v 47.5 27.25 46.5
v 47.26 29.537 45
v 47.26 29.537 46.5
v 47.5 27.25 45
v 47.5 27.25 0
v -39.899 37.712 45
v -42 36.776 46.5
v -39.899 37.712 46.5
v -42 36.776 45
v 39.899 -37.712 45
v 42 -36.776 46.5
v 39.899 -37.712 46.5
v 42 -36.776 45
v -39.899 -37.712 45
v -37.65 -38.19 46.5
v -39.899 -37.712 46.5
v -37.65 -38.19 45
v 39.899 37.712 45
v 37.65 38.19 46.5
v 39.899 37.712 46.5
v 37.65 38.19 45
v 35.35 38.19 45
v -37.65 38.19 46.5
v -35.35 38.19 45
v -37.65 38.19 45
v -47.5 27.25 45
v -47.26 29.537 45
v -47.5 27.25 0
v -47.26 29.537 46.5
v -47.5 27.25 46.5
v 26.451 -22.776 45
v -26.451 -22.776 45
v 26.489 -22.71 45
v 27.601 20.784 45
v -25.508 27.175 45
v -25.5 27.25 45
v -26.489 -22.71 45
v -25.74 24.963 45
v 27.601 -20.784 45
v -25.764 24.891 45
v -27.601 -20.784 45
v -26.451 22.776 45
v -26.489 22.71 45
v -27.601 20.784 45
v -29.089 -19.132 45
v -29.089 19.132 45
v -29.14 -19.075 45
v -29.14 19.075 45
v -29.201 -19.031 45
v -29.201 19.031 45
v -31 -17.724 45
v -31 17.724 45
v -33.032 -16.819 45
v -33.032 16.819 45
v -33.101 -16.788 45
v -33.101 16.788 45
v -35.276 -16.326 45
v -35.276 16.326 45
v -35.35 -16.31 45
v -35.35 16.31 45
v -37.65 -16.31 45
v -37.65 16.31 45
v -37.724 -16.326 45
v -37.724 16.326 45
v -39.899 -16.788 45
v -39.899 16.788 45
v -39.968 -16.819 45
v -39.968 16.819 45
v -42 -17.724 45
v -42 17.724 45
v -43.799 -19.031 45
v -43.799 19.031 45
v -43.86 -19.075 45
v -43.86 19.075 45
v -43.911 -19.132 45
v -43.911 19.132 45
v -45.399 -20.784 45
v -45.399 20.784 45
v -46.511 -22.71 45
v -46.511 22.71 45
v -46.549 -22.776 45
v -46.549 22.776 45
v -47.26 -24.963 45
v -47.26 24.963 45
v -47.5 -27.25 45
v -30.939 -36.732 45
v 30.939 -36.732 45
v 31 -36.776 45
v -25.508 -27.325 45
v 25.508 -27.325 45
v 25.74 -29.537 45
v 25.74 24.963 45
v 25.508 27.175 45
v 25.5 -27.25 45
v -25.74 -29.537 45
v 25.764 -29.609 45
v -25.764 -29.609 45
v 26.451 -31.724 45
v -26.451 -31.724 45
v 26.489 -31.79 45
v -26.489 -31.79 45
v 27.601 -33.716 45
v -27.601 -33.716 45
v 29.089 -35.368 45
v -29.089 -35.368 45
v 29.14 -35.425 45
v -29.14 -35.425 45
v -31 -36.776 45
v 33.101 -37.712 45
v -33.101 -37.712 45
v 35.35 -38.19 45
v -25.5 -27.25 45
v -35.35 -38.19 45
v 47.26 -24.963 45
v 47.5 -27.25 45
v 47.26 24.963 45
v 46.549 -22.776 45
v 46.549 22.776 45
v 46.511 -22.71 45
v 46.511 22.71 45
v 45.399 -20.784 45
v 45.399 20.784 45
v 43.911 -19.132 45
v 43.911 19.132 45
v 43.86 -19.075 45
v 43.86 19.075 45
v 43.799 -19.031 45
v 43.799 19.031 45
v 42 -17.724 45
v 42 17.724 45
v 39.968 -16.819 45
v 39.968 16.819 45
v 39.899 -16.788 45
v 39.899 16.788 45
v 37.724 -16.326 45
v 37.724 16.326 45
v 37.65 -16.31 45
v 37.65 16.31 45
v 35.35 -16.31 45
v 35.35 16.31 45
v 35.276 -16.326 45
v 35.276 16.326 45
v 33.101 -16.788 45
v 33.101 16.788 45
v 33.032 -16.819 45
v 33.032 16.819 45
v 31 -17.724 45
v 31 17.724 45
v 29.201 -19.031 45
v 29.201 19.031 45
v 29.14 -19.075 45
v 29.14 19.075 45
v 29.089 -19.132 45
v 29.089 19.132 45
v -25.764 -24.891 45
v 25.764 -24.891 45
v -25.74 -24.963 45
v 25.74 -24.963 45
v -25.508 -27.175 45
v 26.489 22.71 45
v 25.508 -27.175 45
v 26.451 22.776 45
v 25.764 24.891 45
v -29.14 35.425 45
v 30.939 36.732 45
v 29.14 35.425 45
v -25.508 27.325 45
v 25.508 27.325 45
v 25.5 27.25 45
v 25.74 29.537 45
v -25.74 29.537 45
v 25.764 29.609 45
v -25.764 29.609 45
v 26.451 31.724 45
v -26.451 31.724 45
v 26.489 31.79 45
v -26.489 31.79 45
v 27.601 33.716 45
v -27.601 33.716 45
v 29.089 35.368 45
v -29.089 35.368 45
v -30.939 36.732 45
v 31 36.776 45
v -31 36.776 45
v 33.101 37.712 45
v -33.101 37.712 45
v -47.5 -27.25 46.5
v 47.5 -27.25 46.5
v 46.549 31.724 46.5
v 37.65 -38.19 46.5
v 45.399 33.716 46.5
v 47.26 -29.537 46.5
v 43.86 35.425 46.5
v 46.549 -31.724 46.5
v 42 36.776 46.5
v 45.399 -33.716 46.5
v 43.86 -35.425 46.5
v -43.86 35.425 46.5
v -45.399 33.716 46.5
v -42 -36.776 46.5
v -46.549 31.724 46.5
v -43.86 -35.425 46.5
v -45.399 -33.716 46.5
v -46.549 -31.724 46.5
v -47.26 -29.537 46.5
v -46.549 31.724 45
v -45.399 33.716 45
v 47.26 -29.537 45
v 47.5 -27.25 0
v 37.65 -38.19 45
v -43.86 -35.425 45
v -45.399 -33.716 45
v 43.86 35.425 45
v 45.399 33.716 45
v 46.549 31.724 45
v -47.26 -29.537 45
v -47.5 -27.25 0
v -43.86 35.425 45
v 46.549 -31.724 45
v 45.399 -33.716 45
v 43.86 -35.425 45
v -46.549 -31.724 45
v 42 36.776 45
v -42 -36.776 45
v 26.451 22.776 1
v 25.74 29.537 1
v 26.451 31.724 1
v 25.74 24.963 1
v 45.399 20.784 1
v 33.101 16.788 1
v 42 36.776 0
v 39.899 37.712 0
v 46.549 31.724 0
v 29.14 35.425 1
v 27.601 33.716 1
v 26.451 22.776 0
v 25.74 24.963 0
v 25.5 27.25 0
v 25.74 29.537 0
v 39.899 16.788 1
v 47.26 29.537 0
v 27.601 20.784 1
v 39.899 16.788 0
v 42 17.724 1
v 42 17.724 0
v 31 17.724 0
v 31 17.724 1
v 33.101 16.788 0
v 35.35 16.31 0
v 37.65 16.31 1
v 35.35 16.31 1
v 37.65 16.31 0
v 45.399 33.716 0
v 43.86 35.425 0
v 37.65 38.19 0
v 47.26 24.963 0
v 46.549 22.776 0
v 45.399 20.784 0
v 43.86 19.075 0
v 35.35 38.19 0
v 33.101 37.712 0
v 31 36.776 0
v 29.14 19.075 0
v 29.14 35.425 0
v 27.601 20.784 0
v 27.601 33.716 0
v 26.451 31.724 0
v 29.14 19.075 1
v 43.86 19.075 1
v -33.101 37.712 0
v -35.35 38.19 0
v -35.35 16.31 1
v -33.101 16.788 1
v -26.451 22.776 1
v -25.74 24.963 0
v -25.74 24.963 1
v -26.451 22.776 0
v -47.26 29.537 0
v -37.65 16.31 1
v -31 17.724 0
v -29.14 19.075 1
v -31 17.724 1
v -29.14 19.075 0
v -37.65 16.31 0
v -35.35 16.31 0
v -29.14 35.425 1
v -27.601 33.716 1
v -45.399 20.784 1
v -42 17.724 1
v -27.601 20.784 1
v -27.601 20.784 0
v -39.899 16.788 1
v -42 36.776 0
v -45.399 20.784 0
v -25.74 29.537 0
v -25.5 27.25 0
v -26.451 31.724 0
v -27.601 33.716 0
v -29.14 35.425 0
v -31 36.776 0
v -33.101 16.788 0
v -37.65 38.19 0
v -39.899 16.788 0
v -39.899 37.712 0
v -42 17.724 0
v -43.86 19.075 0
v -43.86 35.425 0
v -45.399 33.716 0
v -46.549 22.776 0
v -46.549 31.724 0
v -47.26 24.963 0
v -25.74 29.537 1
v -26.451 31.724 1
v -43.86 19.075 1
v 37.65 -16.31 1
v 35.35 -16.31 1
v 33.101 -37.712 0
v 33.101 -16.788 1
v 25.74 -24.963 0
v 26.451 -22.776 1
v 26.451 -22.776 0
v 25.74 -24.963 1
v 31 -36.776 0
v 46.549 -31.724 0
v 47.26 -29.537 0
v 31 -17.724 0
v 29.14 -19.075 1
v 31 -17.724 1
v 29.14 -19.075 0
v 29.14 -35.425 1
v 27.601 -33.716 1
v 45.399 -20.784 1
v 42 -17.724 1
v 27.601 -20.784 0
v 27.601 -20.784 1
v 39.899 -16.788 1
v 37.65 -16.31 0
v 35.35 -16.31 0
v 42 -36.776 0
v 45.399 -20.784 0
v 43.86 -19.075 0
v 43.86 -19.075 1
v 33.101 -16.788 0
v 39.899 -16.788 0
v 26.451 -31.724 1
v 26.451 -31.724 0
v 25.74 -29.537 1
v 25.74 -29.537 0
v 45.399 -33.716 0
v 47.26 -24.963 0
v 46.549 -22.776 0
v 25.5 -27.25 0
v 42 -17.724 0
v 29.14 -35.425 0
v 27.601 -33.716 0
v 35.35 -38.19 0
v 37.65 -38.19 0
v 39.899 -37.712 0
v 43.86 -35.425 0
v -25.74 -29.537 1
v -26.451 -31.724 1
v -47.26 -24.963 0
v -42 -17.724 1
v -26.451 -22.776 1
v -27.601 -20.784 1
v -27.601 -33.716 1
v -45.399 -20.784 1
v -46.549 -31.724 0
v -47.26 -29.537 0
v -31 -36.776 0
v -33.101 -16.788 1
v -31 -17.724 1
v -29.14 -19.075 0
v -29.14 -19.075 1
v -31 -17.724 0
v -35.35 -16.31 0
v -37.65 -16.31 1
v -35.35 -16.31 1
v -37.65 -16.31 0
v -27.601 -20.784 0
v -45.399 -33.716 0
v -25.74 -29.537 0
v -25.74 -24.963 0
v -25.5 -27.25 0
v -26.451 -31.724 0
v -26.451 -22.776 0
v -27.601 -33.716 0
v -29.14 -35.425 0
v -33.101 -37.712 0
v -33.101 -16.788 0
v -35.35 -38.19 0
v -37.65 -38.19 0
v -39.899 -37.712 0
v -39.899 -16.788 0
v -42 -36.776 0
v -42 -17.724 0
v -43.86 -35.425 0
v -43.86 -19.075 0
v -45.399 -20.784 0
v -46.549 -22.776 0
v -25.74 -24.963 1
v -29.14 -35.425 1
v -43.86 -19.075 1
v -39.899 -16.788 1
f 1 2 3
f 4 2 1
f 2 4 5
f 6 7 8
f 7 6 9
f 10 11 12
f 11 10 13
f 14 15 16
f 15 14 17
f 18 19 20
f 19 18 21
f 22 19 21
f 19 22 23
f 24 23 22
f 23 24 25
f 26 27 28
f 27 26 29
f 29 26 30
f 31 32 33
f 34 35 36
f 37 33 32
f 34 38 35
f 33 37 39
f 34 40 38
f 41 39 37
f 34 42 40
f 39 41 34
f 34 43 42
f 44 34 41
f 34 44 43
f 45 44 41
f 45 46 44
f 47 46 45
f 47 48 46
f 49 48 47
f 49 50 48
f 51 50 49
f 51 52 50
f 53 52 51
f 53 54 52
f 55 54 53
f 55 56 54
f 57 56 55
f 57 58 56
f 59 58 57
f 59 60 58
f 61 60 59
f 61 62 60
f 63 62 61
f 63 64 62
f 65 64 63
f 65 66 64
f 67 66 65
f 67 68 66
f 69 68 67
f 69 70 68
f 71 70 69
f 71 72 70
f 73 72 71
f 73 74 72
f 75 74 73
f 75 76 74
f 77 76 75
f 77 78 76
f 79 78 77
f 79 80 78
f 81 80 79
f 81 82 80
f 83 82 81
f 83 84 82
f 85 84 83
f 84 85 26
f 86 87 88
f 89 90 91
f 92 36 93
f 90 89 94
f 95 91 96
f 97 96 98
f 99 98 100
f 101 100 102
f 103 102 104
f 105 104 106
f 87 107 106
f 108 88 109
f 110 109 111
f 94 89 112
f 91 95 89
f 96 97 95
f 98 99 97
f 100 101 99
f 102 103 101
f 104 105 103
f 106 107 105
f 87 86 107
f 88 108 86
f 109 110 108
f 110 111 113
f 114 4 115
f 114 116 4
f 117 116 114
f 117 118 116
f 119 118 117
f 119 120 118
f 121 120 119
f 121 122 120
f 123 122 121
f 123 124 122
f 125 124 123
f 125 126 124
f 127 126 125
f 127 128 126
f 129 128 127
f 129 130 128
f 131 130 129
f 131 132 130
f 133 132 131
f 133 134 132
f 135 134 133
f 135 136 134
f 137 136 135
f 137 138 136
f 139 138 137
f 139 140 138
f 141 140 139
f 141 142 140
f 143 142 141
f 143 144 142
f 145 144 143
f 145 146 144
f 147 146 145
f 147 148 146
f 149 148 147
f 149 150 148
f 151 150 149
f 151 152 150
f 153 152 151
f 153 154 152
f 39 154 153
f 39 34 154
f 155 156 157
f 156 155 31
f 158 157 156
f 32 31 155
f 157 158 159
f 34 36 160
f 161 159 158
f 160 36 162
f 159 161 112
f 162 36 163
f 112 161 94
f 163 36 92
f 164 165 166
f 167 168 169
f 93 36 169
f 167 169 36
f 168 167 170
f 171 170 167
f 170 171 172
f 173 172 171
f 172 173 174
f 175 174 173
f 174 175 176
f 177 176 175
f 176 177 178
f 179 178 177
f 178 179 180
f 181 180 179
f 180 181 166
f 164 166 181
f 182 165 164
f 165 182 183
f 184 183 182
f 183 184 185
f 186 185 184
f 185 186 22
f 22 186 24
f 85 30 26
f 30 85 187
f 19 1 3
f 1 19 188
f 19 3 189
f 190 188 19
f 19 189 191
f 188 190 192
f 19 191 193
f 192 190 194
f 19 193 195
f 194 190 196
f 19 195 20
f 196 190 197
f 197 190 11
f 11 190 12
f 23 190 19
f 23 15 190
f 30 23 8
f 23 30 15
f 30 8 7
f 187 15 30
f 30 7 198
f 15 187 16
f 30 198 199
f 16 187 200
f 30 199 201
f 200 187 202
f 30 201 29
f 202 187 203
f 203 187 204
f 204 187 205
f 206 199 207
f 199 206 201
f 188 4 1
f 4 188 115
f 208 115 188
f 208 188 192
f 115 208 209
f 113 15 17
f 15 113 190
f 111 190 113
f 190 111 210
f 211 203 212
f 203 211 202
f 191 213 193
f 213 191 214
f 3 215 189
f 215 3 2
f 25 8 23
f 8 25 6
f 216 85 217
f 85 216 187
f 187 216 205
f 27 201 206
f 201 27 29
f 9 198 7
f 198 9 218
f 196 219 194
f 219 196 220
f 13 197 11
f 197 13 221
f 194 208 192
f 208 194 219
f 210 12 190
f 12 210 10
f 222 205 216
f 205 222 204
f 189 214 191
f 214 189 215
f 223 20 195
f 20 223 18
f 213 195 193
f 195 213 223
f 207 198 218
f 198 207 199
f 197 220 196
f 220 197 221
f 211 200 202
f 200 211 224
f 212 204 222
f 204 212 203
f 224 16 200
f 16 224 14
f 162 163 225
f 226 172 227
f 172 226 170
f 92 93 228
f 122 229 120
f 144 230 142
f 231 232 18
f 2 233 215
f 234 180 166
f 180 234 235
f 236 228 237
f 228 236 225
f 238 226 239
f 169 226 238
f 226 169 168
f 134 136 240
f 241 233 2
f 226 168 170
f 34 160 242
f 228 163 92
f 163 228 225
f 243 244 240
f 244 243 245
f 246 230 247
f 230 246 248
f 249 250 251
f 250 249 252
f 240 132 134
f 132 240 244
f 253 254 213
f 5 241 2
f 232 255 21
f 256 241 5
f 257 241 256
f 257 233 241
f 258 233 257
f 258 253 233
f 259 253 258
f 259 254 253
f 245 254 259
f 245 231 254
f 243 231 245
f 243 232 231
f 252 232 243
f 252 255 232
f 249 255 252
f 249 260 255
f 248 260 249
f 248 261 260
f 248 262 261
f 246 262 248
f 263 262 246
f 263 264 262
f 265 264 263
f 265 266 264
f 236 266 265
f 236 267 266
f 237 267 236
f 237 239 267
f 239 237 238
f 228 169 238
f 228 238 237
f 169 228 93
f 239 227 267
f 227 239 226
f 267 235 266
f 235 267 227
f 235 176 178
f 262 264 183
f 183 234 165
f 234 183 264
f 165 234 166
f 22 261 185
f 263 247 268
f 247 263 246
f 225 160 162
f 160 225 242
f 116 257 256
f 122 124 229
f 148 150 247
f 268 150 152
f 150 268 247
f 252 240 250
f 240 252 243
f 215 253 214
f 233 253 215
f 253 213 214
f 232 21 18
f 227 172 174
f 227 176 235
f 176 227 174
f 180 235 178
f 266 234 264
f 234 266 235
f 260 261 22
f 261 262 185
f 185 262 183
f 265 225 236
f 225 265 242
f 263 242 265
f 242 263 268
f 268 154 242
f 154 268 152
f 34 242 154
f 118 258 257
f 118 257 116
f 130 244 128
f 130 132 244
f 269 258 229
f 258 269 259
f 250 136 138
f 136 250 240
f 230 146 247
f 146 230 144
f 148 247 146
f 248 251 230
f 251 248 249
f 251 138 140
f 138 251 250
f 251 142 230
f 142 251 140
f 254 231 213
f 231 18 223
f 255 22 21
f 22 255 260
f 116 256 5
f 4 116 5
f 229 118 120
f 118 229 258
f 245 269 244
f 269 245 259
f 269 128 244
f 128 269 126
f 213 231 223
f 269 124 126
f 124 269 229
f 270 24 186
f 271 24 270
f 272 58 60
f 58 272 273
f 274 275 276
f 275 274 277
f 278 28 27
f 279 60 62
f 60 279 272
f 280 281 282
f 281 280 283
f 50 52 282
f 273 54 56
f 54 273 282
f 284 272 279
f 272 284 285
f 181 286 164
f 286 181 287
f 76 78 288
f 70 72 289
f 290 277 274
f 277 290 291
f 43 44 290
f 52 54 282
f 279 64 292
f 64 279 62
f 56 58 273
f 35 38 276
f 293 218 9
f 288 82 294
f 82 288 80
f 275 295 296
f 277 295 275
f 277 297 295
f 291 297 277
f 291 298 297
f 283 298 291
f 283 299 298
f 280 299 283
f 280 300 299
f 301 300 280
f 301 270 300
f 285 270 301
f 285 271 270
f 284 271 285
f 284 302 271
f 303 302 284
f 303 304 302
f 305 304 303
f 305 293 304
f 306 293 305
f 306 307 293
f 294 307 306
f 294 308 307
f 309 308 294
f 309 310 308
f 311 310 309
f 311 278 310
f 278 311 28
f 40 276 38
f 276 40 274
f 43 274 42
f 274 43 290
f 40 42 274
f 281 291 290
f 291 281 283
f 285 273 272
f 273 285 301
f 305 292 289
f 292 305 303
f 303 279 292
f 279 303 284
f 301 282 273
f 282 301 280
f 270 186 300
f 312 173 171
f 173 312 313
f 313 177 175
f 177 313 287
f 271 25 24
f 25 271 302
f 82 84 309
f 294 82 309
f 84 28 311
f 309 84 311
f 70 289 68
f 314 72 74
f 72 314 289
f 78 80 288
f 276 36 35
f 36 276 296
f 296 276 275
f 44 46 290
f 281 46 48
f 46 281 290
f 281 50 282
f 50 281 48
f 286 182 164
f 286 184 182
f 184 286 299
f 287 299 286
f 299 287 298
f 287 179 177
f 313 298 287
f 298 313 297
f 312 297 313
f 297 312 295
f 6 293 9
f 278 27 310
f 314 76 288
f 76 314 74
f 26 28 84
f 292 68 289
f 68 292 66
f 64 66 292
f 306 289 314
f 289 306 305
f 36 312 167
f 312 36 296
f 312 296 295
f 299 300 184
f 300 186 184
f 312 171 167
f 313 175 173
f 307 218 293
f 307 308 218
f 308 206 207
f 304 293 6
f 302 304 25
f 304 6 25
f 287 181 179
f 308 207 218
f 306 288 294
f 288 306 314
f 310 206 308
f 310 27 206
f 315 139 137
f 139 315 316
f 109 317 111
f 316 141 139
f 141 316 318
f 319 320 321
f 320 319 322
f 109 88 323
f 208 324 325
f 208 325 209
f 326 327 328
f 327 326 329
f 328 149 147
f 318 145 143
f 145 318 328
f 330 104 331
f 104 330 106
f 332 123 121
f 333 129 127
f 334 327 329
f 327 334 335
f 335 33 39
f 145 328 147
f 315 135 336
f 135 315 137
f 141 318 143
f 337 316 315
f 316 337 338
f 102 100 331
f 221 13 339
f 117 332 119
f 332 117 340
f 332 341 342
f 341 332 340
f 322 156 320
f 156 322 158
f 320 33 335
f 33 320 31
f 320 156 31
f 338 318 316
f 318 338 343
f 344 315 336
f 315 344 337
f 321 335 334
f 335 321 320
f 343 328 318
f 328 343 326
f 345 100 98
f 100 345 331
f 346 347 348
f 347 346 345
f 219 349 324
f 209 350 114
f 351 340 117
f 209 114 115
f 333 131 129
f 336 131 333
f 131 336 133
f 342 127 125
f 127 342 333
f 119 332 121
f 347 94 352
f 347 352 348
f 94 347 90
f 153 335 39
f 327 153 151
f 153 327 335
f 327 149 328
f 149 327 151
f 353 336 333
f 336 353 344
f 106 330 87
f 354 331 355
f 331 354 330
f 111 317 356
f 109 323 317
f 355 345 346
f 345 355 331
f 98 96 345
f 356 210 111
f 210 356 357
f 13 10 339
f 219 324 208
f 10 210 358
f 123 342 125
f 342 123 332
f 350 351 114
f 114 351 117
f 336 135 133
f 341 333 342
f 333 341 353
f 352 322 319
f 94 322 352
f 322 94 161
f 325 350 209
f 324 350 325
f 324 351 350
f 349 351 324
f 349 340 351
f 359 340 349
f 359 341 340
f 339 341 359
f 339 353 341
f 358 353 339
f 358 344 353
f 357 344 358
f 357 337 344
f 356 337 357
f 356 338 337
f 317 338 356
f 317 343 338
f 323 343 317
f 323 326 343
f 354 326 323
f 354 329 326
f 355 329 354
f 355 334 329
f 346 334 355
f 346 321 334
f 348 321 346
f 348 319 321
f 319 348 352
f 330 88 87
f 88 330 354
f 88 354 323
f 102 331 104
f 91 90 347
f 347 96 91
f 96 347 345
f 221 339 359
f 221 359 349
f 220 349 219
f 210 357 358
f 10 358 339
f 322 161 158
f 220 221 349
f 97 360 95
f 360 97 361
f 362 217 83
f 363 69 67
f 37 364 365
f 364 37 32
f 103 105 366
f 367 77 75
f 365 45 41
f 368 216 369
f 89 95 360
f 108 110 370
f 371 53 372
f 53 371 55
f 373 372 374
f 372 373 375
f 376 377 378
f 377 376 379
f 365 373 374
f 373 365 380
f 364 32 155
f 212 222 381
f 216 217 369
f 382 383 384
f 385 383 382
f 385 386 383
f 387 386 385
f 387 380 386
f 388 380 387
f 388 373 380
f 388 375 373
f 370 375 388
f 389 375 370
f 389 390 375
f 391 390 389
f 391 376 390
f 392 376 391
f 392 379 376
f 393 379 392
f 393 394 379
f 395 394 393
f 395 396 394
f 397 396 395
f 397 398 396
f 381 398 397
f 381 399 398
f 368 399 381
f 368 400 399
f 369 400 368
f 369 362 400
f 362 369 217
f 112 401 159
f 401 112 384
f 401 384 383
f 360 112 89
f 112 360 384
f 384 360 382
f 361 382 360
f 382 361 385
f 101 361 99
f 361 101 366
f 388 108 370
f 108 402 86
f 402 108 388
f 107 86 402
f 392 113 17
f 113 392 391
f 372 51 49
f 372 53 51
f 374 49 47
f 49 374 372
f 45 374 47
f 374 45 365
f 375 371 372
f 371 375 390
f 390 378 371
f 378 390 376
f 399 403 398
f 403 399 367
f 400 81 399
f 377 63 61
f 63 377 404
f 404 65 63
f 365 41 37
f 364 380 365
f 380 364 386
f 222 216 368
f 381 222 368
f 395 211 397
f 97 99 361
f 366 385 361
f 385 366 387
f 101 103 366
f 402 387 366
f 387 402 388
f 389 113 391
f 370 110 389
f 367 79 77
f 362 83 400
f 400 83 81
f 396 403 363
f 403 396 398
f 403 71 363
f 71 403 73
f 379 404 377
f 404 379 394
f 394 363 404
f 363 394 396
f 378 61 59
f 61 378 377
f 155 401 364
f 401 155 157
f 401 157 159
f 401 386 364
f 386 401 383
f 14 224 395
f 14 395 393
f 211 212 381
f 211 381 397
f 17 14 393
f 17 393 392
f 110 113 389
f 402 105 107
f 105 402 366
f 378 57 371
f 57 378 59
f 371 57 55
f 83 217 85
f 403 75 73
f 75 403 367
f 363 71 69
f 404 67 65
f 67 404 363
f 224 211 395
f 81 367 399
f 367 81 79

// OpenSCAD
union () {
  hull () {
    translate ([73/2, 27.25, 45.75]) {
      cylinder (h=1.5, r=11, center=true);
    }
    mirror ([-1, 0, 0]) {
      translate ([73/2, 27.25, 45.75]) {
        cylinder (h=1.5, r=11, center=true);
      }
    }
    mirror ([0, -1, 0]) {
      translate ([73/2, 27.25, 45.75]) {
        cylinder (h=1.5, r=11, center=true);
      }
    }
    mirror ([-1, 0, 0]) {
      mirror ([0, -1, 0]) {
        translate ([73/2, 27.25, 45.75]) {
          cylinder (h=1.5, r=11, center=true);
        }
      }
    }
  }
  hull () {
    translate ([73/2, 27.25, 45.75]) {
      cylinder (h=1.5, r=11, center=true);
    }
    translate ([0, 0, 1/2]) {
      linear_extrude (height=1, twist=0.0, convexity=0, center=true){
        projection (cut = false) {
          translate ([73/2, 27.25, 45.75]) {
            cylinder (h=1.5, r=11, center=true);
          }
        }
      }
    }
  }
  hull () {
    mirror ([-1, 0, 0]) {
      translate ([73/2, 27.25, 45.75]) {
        cylinder (h=1.5, r=11, center=true);
      }
    }
    translate ([0, 0, 1/2]) {
      linear_extrude (height=1, twist=0.0, convexity=0, center=true){
        projection (cut = false) {
          mirror ([-1, 0, 0]) {
            translate ([73/2, 27.25, 45.75]) {
              cylinder (h=1.5, r=11, center=true);
            }
          }
        }
      }
    }
  }
  hull () {
    mirror ([0, -1, 0]) {
      translate ([73/2, 27.25, 45.75]) {
        cylinder (h=1.5, r=11, center=true);
      }
    }
    translate ([0, 0, 1/2]) {
      linear_extrude (height=1, twist=0.0, convexity=0, center=true){
        projection (cut = false) {
          mirror ([0, -1, 0]) {
            translate ([73/2, 27.25, 45.75]) {
              cylinder (h=1.5, r=11, center=true);
            }
          }
        }
      }
    }
  }
  hull () {
    mirror ([-1, 0, 0]) {
      mirror ([0, -1, 0]) {
        translate ([73/2, 27.25, 45.75]) {
          cylinder (h=1.5, r=11, center=true);
        }
      }
    }
    translate ([0, 0, 1/2]) {
      linear_extrude (height=1, twist=0.0, convexity=0, center=true){
        projection (cut = false) {
          mirror ([-1, 0, 0]) {
            mirror ([0, -1, 0]) {
              translate ([73/2, 27.25, 45.75]) {
                cylinder (h=1.5, r=11, center=true);
              }
            }
          }
        }
      }
    }
  }
}
